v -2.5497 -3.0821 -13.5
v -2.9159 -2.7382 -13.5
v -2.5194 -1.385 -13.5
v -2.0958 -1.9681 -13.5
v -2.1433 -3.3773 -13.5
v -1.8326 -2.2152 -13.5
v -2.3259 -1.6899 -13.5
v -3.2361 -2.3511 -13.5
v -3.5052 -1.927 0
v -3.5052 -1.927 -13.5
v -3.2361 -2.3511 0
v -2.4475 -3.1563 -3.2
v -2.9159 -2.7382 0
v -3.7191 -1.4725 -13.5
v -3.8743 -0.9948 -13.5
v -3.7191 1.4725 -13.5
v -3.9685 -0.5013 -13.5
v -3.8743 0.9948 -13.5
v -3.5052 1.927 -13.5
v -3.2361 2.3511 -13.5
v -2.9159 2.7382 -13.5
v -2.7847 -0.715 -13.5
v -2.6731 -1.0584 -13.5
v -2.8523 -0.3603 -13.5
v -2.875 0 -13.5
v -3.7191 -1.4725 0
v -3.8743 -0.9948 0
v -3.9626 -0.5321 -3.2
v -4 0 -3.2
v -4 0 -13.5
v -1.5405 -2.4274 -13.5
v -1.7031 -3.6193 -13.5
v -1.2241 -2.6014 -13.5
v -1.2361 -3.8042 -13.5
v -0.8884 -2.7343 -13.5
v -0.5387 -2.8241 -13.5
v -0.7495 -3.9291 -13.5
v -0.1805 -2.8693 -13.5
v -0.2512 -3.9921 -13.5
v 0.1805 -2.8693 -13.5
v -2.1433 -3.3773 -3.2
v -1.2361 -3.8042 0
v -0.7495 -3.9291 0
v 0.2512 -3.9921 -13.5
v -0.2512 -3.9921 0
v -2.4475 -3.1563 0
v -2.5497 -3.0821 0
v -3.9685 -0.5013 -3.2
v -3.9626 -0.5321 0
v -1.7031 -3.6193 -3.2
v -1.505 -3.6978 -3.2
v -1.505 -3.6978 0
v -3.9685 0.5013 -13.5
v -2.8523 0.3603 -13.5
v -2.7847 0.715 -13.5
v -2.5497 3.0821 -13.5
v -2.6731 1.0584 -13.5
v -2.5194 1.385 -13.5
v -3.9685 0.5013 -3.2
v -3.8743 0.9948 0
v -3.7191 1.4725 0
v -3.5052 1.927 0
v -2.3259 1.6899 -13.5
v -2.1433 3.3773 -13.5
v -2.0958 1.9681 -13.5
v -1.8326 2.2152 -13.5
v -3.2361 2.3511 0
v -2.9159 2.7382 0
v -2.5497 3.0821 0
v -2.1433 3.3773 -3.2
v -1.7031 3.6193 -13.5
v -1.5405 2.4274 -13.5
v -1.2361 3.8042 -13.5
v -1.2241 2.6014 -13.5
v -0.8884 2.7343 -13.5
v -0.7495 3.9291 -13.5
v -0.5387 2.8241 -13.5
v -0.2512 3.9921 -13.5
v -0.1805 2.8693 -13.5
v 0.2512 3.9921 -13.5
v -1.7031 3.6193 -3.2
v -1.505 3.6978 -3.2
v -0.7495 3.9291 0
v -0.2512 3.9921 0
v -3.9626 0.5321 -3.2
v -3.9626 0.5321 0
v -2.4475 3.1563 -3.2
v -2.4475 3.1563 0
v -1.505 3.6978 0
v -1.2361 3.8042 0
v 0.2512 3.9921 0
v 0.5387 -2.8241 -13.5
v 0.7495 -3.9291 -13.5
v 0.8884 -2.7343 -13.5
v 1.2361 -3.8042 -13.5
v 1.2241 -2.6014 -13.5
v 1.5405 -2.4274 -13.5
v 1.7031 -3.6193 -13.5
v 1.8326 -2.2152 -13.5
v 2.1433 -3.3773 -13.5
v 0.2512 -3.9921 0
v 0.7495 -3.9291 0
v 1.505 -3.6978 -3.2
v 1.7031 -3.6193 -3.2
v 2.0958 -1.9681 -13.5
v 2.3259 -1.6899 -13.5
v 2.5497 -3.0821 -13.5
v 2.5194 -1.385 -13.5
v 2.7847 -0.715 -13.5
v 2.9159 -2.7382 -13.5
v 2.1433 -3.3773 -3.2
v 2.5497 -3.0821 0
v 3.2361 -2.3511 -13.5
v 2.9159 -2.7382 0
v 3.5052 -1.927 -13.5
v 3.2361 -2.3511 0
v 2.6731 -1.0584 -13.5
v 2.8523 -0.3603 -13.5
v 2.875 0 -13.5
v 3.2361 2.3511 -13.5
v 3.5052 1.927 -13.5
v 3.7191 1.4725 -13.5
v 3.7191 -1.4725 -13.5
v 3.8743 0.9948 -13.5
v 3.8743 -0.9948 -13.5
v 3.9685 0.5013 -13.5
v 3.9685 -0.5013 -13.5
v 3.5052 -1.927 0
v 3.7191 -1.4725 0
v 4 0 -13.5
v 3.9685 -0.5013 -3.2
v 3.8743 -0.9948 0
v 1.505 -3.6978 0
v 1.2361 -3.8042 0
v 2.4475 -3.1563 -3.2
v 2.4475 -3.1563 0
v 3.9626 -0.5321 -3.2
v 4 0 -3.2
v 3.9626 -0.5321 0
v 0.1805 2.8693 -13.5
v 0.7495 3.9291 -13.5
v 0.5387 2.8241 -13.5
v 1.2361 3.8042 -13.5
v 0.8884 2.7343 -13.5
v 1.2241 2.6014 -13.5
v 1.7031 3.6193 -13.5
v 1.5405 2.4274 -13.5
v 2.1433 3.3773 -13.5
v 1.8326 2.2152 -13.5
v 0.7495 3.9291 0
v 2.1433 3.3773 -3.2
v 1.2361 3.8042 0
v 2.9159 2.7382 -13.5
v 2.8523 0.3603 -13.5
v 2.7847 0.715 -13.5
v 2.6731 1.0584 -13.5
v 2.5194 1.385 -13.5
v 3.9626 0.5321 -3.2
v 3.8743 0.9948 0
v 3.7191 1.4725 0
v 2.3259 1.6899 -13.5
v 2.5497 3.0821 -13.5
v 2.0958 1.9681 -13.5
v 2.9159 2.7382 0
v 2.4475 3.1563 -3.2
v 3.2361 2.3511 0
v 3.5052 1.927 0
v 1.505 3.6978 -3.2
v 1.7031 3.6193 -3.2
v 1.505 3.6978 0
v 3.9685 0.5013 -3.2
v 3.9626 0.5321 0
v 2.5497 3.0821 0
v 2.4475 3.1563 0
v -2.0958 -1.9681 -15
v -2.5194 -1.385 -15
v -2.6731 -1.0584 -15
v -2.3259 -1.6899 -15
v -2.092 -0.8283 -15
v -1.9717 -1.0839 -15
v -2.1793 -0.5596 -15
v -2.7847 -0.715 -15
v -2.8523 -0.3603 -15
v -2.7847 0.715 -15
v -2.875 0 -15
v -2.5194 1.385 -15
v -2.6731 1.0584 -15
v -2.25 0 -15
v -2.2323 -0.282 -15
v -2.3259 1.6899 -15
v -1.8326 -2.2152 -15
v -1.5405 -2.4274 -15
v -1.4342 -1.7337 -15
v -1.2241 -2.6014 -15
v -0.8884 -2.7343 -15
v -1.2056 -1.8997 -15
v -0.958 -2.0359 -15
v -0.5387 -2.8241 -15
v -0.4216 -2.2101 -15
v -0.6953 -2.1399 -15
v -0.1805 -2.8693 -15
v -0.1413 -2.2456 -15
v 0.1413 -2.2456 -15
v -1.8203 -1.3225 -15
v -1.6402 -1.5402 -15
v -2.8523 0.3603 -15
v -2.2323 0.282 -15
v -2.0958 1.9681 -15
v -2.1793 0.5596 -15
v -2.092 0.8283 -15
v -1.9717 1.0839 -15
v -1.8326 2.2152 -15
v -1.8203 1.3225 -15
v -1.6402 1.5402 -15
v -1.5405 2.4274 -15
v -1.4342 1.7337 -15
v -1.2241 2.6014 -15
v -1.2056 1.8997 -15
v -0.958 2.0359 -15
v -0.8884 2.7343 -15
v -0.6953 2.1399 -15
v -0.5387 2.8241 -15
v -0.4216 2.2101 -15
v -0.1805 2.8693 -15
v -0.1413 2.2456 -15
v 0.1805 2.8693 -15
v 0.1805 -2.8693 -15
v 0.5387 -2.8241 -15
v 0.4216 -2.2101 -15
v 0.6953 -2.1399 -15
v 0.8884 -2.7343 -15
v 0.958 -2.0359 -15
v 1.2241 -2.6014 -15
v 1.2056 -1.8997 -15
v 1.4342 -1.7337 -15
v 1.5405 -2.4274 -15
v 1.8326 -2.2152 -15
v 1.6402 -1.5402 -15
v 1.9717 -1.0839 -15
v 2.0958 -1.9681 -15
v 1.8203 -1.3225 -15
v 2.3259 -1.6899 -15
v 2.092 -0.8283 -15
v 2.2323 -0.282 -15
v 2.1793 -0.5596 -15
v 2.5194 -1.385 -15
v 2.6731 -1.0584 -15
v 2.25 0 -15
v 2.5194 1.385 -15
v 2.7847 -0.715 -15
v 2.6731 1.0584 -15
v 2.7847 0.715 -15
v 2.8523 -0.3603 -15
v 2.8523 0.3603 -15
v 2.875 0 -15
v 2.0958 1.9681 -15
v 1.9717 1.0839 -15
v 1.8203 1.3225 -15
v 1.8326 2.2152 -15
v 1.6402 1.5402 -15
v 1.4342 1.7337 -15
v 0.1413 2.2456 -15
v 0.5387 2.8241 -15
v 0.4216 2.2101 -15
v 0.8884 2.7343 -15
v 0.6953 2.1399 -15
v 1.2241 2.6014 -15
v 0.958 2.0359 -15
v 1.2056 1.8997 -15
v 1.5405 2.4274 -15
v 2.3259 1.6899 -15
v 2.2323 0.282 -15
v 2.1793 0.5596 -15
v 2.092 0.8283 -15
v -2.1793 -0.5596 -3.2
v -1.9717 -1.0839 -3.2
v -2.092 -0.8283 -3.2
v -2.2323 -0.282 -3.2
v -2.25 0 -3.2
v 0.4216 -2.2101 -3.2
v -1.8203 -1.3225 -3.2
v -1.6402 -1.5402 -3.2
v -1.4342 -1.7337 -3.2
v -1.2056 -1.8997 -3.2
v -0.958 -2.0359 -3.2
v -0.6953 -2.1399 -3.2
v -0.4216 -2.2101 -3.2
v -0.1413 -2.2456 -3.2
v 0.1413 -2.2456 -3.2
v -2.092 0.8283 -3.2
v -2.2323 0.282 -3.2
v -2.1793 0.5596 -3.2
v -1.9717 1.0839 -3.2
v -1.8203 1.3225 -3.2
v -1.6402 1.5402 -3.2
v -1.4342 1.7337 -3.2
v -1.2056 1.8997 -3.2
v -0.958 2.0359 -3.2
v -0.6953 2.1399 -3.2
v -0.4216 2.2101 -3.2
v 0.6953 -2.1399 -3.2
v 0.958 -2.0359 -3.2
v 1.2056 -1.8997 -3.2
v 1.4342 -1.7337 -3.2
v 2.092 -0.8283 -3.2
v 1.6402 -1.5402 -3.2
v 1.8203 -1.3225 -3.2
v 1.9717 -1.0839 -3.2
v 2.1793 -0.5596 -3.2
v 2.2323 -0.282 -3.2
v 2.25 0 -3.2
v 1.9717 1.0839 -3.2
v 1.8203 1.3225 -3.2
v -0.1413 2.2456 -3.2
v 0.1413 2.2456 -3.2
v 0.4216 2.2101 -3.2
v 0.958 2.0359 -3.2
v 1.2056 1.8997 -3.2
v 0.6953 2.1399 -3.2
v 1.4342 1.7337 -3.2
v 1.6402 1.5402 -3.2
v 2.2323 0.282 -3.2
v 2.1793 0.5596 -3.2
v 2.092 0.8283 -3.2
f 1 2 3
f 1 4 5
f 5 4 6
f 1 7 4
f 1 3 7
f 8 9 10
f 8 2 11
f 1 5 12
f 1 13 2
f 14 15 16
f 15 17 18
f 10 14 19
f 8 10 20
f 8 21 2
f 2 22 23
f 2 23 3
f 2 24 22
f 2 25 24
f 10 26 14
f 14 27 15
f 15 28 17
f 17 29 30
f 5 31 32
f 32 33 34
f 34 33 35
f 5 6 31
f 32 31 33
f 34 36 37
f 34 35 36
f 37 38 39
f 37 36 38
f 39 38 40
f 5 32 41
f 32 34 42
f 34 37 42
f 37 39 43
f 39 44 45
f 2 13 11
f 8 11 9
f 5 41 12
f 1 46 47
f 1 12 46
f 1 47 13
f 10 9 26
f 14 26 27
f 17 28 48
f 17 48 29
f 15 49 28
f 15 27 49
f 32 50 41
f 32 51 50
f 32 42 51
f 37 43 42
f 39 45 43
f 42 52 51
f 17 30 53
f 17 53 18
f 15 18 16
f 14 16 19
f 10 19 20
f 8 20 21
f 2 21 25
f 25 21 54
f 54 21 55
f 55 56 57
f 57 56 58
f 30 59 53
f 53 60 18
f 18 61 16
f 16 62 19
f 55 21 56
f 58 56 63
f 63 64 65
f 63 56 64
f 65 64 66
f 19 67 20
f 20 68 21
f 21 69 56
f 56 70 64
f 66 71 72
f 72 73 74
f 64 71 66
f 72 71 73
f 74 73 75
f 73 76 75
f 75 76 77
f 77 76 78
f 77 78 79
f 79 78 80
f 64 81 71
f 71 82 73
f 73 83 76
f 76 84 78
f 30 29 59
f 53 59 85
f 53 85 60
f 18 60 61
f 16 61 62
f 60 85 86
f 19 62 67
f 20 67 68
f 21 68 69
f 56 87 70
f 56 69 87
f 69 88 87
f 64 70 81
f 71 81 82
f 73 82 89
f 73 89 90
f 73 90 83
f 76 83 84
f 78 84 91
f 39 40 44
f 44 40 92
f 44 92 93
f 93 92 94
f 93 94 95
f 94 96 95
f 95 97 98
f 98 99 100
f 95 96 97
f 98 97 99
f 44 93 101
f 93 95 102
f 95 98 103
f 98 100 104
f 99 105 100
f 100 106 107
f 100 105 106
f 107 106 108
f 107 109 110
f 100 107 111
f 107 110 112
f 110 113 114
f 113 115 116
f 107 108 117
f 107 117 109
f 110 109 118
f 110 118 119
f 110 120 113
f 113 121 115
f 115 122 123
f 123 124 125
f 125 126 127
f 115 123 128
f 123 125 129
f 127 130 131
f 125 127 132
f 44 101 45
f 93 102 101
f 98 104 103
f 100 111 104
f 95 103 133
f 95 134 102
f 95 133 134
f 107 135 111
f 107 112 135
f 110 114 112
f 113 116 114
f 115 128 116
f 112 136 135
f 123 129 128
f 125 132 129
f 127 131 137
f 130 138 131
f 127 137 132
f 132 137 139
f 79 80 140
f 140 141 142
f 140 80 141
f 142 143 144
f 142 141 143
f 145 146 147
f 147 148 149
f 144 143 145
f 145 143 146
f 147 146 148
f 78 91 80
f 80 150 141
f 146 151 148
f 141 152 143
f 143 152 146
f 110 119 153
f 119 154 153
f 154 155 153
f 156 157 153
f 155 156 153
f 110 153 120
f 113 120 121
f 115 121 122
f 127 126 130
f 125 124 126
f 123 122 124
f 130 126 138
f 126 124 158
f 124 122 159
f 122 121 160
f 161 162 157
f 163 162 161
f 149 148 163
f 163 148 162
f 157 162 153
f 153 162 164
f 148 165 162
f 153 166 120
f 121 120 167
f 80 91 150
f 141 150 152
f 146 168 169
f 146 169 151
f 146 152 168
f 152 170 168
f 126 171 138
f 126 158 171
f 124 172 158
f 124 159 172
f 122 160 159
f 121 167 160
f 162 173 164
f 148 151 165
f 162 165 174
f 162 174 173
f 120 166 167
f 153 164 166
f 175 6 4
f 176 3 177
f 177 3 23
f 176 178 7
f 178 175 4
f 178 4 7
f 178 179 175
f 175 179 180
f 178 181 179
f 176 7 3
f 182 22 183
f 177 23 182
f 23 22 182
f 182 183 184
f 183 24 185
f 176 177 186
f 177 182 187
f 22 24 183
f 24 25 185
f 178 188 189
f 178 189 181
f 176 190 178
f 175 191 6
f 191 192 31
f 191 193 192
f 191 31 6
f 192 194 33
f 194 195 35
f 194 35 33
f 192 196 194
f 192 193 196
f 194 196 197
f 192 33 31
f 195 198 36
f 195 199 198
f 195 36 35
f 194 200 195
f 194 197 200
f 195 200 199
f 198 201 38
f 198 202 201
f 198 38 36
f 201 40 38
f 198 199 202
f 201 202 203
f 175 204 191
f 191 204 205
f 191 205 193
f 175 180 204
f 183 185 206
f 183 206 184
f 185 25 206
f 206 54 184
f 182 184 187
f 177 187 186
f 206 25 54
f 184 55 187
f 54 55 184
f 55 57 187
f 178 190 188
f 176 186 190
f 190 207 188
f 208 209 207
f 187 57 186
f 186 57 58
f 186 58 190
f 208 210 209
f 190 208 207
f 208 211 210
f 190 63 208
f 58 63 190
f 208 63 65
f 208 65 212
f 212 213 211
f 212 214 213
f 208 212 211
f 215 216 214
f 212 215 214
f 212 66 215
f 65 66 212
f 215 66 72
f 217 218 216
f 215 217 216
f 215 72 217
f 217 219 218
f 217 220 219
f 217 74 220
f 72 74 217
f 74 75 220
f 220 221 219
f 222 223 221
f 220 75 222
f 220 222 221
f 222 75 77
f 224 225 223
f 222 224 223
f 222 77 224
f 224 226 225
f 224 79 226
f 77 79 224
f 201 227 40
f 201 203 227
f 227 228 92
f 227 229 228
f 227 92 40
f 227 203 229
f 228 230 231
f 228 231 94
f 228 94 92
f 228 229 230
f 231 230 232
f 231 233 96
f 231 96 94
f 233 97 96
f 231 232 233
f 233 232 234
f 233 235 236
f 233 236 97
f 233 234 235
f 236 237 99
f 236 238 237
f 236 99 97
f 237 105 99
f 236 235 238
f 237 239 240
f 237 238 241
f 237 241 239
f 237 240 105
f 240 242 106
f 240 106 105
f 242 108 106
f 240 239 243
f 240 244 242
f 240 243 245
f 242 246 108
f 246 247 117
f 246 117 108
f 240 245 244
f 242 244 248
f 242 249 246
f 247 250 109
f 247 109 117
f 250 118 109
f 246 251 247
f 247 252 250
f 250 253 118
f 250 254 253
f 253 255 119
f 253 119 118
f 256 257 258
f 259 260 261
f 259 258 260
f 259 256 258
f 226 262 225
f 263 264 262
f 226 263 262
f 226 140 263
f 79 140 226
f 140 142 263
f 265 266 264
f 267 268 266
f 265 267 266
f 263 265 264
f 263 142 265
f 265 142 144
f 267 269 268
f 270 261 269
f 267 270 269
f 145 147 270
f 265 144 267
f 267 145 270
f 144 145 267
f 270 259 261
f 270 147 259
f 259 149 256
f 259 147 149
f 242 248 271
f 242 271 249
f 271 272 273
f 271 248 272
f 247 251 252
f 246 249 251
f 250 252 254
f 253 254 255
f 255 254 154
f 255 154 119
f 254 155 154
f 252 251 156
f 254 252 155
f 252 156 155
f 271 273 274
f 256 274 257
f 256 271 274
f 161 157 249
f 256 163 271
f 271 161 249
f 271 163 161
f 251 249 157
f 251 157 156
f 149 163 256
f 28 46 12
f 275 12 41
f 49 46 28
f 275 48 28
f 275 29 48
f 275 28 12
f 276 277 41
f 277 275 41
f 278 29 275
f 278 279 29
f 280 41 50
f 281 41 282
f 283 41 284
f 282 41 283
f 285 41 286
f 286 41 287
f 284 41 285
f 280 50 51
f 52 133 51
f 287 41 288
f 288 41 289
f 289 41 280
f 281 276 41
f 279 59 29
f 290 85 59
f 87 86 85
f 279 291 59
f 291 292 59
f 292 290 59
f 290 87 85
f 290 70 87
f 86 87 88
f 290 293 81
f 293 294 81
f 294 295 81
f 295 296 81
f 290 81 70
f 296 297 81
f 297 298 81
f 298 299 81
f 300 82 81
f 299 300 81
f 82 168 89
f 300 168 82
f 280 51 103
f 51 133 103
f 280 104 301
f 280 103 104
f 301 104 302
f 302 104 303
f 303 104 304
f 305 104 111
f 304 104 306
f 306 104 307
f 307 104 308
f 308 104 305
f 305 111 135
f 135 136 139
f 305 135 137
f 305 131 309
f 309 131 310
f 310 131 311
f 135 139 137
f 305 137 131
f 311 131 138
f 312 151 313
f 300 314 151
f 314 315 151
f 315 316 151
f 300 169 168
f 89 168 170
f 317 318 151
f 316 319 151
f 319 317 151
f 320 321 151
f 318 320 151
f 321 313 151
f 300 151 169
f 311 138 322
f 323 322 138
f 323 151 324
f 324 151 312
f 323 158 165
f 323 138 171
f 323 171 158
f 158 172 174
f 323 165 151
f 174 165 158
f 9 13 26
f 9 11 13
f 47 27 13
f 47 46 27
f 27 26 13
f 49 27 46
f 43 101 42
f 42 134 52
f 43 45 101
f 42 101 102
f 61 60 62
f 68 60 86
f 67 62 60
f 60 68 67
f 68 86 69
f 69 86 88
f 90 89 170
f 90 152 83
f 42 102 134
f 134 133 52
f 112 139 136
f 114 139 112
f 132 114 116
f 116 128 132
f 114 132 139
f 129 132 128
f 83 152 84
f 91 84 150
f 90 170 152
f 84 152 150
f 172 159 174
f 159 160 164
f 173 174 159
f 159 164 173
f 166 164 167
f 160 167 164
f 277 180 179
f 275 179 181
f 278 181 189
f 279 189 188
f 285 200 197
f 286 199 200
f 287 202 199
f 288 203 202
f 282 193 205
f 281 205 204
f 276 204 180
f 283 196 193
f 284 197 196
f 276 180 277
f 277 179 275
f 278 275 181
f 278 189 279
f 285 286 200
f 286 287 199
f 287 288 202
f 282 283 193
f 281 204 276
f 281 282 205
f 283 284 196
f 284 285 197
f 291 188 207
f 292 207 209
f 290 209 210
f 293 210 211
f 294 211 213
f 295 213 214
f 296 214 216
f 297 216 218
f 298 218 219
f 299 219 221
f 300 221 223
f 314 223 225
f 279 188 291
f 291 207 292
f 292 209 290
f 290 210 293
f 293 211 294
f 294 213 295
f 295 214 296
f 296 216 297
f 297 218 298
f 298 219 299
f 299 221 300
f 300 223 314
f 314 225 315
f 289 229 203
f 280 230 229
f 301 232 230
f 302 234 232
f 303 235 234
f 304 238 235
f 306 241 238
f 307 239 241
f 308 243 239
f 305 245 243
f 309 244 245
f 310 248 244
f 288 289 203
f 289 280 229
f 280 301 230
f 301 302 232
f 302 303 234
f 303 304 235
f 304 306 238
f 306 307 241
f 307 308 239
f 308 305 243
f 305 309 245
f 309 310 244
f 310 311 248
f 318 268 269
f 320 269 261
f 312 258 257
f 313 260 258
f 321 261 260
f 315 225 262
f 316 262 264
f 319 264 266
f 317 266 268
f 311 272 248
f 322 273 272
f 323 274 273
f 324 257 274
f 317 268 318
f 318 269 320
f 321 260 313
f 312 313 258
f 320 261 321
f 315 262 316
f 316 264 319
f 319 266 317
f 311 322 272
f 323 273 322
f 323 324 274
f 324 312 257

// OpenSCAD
$fn = 50;

difference() {
	union() {
		translate(v = [0, 0, -13.5]) {
			cylinder(h = 16.5, r = 4.0);
		}
		#translate(v = [0, 0, -15.0]) {
			cylinder(h = 15, r = 2.875);
		}
	}
	union() {
		translate(v = [0, 0, 0]) {
			rotate(a = [0, 0, 0]) {
				difference() {
					union() {
						translate(v = [0, 0, -3.2]) {
							linear_extrude(height = 3.2) {
								polygon(points = [[4.2698, 0.0], [2.1349000000000005, 3.697755269078796], [-2.134899999999999, 3.6977552690787965], [-4.2698, 5.228996902999369e-16], [-2.134900000000002, -3.6977552690787956], [2.1348999999999974, -3.697755269078798]]);
							}
						}
					}
					union();
				}
			}
		}
		#cylinder(h = 3, r = 5.0);
		#translate(v = [0, 0, -100.0]) {
			cylinder(h = 200, r = 2.25);
		}
	}
}
